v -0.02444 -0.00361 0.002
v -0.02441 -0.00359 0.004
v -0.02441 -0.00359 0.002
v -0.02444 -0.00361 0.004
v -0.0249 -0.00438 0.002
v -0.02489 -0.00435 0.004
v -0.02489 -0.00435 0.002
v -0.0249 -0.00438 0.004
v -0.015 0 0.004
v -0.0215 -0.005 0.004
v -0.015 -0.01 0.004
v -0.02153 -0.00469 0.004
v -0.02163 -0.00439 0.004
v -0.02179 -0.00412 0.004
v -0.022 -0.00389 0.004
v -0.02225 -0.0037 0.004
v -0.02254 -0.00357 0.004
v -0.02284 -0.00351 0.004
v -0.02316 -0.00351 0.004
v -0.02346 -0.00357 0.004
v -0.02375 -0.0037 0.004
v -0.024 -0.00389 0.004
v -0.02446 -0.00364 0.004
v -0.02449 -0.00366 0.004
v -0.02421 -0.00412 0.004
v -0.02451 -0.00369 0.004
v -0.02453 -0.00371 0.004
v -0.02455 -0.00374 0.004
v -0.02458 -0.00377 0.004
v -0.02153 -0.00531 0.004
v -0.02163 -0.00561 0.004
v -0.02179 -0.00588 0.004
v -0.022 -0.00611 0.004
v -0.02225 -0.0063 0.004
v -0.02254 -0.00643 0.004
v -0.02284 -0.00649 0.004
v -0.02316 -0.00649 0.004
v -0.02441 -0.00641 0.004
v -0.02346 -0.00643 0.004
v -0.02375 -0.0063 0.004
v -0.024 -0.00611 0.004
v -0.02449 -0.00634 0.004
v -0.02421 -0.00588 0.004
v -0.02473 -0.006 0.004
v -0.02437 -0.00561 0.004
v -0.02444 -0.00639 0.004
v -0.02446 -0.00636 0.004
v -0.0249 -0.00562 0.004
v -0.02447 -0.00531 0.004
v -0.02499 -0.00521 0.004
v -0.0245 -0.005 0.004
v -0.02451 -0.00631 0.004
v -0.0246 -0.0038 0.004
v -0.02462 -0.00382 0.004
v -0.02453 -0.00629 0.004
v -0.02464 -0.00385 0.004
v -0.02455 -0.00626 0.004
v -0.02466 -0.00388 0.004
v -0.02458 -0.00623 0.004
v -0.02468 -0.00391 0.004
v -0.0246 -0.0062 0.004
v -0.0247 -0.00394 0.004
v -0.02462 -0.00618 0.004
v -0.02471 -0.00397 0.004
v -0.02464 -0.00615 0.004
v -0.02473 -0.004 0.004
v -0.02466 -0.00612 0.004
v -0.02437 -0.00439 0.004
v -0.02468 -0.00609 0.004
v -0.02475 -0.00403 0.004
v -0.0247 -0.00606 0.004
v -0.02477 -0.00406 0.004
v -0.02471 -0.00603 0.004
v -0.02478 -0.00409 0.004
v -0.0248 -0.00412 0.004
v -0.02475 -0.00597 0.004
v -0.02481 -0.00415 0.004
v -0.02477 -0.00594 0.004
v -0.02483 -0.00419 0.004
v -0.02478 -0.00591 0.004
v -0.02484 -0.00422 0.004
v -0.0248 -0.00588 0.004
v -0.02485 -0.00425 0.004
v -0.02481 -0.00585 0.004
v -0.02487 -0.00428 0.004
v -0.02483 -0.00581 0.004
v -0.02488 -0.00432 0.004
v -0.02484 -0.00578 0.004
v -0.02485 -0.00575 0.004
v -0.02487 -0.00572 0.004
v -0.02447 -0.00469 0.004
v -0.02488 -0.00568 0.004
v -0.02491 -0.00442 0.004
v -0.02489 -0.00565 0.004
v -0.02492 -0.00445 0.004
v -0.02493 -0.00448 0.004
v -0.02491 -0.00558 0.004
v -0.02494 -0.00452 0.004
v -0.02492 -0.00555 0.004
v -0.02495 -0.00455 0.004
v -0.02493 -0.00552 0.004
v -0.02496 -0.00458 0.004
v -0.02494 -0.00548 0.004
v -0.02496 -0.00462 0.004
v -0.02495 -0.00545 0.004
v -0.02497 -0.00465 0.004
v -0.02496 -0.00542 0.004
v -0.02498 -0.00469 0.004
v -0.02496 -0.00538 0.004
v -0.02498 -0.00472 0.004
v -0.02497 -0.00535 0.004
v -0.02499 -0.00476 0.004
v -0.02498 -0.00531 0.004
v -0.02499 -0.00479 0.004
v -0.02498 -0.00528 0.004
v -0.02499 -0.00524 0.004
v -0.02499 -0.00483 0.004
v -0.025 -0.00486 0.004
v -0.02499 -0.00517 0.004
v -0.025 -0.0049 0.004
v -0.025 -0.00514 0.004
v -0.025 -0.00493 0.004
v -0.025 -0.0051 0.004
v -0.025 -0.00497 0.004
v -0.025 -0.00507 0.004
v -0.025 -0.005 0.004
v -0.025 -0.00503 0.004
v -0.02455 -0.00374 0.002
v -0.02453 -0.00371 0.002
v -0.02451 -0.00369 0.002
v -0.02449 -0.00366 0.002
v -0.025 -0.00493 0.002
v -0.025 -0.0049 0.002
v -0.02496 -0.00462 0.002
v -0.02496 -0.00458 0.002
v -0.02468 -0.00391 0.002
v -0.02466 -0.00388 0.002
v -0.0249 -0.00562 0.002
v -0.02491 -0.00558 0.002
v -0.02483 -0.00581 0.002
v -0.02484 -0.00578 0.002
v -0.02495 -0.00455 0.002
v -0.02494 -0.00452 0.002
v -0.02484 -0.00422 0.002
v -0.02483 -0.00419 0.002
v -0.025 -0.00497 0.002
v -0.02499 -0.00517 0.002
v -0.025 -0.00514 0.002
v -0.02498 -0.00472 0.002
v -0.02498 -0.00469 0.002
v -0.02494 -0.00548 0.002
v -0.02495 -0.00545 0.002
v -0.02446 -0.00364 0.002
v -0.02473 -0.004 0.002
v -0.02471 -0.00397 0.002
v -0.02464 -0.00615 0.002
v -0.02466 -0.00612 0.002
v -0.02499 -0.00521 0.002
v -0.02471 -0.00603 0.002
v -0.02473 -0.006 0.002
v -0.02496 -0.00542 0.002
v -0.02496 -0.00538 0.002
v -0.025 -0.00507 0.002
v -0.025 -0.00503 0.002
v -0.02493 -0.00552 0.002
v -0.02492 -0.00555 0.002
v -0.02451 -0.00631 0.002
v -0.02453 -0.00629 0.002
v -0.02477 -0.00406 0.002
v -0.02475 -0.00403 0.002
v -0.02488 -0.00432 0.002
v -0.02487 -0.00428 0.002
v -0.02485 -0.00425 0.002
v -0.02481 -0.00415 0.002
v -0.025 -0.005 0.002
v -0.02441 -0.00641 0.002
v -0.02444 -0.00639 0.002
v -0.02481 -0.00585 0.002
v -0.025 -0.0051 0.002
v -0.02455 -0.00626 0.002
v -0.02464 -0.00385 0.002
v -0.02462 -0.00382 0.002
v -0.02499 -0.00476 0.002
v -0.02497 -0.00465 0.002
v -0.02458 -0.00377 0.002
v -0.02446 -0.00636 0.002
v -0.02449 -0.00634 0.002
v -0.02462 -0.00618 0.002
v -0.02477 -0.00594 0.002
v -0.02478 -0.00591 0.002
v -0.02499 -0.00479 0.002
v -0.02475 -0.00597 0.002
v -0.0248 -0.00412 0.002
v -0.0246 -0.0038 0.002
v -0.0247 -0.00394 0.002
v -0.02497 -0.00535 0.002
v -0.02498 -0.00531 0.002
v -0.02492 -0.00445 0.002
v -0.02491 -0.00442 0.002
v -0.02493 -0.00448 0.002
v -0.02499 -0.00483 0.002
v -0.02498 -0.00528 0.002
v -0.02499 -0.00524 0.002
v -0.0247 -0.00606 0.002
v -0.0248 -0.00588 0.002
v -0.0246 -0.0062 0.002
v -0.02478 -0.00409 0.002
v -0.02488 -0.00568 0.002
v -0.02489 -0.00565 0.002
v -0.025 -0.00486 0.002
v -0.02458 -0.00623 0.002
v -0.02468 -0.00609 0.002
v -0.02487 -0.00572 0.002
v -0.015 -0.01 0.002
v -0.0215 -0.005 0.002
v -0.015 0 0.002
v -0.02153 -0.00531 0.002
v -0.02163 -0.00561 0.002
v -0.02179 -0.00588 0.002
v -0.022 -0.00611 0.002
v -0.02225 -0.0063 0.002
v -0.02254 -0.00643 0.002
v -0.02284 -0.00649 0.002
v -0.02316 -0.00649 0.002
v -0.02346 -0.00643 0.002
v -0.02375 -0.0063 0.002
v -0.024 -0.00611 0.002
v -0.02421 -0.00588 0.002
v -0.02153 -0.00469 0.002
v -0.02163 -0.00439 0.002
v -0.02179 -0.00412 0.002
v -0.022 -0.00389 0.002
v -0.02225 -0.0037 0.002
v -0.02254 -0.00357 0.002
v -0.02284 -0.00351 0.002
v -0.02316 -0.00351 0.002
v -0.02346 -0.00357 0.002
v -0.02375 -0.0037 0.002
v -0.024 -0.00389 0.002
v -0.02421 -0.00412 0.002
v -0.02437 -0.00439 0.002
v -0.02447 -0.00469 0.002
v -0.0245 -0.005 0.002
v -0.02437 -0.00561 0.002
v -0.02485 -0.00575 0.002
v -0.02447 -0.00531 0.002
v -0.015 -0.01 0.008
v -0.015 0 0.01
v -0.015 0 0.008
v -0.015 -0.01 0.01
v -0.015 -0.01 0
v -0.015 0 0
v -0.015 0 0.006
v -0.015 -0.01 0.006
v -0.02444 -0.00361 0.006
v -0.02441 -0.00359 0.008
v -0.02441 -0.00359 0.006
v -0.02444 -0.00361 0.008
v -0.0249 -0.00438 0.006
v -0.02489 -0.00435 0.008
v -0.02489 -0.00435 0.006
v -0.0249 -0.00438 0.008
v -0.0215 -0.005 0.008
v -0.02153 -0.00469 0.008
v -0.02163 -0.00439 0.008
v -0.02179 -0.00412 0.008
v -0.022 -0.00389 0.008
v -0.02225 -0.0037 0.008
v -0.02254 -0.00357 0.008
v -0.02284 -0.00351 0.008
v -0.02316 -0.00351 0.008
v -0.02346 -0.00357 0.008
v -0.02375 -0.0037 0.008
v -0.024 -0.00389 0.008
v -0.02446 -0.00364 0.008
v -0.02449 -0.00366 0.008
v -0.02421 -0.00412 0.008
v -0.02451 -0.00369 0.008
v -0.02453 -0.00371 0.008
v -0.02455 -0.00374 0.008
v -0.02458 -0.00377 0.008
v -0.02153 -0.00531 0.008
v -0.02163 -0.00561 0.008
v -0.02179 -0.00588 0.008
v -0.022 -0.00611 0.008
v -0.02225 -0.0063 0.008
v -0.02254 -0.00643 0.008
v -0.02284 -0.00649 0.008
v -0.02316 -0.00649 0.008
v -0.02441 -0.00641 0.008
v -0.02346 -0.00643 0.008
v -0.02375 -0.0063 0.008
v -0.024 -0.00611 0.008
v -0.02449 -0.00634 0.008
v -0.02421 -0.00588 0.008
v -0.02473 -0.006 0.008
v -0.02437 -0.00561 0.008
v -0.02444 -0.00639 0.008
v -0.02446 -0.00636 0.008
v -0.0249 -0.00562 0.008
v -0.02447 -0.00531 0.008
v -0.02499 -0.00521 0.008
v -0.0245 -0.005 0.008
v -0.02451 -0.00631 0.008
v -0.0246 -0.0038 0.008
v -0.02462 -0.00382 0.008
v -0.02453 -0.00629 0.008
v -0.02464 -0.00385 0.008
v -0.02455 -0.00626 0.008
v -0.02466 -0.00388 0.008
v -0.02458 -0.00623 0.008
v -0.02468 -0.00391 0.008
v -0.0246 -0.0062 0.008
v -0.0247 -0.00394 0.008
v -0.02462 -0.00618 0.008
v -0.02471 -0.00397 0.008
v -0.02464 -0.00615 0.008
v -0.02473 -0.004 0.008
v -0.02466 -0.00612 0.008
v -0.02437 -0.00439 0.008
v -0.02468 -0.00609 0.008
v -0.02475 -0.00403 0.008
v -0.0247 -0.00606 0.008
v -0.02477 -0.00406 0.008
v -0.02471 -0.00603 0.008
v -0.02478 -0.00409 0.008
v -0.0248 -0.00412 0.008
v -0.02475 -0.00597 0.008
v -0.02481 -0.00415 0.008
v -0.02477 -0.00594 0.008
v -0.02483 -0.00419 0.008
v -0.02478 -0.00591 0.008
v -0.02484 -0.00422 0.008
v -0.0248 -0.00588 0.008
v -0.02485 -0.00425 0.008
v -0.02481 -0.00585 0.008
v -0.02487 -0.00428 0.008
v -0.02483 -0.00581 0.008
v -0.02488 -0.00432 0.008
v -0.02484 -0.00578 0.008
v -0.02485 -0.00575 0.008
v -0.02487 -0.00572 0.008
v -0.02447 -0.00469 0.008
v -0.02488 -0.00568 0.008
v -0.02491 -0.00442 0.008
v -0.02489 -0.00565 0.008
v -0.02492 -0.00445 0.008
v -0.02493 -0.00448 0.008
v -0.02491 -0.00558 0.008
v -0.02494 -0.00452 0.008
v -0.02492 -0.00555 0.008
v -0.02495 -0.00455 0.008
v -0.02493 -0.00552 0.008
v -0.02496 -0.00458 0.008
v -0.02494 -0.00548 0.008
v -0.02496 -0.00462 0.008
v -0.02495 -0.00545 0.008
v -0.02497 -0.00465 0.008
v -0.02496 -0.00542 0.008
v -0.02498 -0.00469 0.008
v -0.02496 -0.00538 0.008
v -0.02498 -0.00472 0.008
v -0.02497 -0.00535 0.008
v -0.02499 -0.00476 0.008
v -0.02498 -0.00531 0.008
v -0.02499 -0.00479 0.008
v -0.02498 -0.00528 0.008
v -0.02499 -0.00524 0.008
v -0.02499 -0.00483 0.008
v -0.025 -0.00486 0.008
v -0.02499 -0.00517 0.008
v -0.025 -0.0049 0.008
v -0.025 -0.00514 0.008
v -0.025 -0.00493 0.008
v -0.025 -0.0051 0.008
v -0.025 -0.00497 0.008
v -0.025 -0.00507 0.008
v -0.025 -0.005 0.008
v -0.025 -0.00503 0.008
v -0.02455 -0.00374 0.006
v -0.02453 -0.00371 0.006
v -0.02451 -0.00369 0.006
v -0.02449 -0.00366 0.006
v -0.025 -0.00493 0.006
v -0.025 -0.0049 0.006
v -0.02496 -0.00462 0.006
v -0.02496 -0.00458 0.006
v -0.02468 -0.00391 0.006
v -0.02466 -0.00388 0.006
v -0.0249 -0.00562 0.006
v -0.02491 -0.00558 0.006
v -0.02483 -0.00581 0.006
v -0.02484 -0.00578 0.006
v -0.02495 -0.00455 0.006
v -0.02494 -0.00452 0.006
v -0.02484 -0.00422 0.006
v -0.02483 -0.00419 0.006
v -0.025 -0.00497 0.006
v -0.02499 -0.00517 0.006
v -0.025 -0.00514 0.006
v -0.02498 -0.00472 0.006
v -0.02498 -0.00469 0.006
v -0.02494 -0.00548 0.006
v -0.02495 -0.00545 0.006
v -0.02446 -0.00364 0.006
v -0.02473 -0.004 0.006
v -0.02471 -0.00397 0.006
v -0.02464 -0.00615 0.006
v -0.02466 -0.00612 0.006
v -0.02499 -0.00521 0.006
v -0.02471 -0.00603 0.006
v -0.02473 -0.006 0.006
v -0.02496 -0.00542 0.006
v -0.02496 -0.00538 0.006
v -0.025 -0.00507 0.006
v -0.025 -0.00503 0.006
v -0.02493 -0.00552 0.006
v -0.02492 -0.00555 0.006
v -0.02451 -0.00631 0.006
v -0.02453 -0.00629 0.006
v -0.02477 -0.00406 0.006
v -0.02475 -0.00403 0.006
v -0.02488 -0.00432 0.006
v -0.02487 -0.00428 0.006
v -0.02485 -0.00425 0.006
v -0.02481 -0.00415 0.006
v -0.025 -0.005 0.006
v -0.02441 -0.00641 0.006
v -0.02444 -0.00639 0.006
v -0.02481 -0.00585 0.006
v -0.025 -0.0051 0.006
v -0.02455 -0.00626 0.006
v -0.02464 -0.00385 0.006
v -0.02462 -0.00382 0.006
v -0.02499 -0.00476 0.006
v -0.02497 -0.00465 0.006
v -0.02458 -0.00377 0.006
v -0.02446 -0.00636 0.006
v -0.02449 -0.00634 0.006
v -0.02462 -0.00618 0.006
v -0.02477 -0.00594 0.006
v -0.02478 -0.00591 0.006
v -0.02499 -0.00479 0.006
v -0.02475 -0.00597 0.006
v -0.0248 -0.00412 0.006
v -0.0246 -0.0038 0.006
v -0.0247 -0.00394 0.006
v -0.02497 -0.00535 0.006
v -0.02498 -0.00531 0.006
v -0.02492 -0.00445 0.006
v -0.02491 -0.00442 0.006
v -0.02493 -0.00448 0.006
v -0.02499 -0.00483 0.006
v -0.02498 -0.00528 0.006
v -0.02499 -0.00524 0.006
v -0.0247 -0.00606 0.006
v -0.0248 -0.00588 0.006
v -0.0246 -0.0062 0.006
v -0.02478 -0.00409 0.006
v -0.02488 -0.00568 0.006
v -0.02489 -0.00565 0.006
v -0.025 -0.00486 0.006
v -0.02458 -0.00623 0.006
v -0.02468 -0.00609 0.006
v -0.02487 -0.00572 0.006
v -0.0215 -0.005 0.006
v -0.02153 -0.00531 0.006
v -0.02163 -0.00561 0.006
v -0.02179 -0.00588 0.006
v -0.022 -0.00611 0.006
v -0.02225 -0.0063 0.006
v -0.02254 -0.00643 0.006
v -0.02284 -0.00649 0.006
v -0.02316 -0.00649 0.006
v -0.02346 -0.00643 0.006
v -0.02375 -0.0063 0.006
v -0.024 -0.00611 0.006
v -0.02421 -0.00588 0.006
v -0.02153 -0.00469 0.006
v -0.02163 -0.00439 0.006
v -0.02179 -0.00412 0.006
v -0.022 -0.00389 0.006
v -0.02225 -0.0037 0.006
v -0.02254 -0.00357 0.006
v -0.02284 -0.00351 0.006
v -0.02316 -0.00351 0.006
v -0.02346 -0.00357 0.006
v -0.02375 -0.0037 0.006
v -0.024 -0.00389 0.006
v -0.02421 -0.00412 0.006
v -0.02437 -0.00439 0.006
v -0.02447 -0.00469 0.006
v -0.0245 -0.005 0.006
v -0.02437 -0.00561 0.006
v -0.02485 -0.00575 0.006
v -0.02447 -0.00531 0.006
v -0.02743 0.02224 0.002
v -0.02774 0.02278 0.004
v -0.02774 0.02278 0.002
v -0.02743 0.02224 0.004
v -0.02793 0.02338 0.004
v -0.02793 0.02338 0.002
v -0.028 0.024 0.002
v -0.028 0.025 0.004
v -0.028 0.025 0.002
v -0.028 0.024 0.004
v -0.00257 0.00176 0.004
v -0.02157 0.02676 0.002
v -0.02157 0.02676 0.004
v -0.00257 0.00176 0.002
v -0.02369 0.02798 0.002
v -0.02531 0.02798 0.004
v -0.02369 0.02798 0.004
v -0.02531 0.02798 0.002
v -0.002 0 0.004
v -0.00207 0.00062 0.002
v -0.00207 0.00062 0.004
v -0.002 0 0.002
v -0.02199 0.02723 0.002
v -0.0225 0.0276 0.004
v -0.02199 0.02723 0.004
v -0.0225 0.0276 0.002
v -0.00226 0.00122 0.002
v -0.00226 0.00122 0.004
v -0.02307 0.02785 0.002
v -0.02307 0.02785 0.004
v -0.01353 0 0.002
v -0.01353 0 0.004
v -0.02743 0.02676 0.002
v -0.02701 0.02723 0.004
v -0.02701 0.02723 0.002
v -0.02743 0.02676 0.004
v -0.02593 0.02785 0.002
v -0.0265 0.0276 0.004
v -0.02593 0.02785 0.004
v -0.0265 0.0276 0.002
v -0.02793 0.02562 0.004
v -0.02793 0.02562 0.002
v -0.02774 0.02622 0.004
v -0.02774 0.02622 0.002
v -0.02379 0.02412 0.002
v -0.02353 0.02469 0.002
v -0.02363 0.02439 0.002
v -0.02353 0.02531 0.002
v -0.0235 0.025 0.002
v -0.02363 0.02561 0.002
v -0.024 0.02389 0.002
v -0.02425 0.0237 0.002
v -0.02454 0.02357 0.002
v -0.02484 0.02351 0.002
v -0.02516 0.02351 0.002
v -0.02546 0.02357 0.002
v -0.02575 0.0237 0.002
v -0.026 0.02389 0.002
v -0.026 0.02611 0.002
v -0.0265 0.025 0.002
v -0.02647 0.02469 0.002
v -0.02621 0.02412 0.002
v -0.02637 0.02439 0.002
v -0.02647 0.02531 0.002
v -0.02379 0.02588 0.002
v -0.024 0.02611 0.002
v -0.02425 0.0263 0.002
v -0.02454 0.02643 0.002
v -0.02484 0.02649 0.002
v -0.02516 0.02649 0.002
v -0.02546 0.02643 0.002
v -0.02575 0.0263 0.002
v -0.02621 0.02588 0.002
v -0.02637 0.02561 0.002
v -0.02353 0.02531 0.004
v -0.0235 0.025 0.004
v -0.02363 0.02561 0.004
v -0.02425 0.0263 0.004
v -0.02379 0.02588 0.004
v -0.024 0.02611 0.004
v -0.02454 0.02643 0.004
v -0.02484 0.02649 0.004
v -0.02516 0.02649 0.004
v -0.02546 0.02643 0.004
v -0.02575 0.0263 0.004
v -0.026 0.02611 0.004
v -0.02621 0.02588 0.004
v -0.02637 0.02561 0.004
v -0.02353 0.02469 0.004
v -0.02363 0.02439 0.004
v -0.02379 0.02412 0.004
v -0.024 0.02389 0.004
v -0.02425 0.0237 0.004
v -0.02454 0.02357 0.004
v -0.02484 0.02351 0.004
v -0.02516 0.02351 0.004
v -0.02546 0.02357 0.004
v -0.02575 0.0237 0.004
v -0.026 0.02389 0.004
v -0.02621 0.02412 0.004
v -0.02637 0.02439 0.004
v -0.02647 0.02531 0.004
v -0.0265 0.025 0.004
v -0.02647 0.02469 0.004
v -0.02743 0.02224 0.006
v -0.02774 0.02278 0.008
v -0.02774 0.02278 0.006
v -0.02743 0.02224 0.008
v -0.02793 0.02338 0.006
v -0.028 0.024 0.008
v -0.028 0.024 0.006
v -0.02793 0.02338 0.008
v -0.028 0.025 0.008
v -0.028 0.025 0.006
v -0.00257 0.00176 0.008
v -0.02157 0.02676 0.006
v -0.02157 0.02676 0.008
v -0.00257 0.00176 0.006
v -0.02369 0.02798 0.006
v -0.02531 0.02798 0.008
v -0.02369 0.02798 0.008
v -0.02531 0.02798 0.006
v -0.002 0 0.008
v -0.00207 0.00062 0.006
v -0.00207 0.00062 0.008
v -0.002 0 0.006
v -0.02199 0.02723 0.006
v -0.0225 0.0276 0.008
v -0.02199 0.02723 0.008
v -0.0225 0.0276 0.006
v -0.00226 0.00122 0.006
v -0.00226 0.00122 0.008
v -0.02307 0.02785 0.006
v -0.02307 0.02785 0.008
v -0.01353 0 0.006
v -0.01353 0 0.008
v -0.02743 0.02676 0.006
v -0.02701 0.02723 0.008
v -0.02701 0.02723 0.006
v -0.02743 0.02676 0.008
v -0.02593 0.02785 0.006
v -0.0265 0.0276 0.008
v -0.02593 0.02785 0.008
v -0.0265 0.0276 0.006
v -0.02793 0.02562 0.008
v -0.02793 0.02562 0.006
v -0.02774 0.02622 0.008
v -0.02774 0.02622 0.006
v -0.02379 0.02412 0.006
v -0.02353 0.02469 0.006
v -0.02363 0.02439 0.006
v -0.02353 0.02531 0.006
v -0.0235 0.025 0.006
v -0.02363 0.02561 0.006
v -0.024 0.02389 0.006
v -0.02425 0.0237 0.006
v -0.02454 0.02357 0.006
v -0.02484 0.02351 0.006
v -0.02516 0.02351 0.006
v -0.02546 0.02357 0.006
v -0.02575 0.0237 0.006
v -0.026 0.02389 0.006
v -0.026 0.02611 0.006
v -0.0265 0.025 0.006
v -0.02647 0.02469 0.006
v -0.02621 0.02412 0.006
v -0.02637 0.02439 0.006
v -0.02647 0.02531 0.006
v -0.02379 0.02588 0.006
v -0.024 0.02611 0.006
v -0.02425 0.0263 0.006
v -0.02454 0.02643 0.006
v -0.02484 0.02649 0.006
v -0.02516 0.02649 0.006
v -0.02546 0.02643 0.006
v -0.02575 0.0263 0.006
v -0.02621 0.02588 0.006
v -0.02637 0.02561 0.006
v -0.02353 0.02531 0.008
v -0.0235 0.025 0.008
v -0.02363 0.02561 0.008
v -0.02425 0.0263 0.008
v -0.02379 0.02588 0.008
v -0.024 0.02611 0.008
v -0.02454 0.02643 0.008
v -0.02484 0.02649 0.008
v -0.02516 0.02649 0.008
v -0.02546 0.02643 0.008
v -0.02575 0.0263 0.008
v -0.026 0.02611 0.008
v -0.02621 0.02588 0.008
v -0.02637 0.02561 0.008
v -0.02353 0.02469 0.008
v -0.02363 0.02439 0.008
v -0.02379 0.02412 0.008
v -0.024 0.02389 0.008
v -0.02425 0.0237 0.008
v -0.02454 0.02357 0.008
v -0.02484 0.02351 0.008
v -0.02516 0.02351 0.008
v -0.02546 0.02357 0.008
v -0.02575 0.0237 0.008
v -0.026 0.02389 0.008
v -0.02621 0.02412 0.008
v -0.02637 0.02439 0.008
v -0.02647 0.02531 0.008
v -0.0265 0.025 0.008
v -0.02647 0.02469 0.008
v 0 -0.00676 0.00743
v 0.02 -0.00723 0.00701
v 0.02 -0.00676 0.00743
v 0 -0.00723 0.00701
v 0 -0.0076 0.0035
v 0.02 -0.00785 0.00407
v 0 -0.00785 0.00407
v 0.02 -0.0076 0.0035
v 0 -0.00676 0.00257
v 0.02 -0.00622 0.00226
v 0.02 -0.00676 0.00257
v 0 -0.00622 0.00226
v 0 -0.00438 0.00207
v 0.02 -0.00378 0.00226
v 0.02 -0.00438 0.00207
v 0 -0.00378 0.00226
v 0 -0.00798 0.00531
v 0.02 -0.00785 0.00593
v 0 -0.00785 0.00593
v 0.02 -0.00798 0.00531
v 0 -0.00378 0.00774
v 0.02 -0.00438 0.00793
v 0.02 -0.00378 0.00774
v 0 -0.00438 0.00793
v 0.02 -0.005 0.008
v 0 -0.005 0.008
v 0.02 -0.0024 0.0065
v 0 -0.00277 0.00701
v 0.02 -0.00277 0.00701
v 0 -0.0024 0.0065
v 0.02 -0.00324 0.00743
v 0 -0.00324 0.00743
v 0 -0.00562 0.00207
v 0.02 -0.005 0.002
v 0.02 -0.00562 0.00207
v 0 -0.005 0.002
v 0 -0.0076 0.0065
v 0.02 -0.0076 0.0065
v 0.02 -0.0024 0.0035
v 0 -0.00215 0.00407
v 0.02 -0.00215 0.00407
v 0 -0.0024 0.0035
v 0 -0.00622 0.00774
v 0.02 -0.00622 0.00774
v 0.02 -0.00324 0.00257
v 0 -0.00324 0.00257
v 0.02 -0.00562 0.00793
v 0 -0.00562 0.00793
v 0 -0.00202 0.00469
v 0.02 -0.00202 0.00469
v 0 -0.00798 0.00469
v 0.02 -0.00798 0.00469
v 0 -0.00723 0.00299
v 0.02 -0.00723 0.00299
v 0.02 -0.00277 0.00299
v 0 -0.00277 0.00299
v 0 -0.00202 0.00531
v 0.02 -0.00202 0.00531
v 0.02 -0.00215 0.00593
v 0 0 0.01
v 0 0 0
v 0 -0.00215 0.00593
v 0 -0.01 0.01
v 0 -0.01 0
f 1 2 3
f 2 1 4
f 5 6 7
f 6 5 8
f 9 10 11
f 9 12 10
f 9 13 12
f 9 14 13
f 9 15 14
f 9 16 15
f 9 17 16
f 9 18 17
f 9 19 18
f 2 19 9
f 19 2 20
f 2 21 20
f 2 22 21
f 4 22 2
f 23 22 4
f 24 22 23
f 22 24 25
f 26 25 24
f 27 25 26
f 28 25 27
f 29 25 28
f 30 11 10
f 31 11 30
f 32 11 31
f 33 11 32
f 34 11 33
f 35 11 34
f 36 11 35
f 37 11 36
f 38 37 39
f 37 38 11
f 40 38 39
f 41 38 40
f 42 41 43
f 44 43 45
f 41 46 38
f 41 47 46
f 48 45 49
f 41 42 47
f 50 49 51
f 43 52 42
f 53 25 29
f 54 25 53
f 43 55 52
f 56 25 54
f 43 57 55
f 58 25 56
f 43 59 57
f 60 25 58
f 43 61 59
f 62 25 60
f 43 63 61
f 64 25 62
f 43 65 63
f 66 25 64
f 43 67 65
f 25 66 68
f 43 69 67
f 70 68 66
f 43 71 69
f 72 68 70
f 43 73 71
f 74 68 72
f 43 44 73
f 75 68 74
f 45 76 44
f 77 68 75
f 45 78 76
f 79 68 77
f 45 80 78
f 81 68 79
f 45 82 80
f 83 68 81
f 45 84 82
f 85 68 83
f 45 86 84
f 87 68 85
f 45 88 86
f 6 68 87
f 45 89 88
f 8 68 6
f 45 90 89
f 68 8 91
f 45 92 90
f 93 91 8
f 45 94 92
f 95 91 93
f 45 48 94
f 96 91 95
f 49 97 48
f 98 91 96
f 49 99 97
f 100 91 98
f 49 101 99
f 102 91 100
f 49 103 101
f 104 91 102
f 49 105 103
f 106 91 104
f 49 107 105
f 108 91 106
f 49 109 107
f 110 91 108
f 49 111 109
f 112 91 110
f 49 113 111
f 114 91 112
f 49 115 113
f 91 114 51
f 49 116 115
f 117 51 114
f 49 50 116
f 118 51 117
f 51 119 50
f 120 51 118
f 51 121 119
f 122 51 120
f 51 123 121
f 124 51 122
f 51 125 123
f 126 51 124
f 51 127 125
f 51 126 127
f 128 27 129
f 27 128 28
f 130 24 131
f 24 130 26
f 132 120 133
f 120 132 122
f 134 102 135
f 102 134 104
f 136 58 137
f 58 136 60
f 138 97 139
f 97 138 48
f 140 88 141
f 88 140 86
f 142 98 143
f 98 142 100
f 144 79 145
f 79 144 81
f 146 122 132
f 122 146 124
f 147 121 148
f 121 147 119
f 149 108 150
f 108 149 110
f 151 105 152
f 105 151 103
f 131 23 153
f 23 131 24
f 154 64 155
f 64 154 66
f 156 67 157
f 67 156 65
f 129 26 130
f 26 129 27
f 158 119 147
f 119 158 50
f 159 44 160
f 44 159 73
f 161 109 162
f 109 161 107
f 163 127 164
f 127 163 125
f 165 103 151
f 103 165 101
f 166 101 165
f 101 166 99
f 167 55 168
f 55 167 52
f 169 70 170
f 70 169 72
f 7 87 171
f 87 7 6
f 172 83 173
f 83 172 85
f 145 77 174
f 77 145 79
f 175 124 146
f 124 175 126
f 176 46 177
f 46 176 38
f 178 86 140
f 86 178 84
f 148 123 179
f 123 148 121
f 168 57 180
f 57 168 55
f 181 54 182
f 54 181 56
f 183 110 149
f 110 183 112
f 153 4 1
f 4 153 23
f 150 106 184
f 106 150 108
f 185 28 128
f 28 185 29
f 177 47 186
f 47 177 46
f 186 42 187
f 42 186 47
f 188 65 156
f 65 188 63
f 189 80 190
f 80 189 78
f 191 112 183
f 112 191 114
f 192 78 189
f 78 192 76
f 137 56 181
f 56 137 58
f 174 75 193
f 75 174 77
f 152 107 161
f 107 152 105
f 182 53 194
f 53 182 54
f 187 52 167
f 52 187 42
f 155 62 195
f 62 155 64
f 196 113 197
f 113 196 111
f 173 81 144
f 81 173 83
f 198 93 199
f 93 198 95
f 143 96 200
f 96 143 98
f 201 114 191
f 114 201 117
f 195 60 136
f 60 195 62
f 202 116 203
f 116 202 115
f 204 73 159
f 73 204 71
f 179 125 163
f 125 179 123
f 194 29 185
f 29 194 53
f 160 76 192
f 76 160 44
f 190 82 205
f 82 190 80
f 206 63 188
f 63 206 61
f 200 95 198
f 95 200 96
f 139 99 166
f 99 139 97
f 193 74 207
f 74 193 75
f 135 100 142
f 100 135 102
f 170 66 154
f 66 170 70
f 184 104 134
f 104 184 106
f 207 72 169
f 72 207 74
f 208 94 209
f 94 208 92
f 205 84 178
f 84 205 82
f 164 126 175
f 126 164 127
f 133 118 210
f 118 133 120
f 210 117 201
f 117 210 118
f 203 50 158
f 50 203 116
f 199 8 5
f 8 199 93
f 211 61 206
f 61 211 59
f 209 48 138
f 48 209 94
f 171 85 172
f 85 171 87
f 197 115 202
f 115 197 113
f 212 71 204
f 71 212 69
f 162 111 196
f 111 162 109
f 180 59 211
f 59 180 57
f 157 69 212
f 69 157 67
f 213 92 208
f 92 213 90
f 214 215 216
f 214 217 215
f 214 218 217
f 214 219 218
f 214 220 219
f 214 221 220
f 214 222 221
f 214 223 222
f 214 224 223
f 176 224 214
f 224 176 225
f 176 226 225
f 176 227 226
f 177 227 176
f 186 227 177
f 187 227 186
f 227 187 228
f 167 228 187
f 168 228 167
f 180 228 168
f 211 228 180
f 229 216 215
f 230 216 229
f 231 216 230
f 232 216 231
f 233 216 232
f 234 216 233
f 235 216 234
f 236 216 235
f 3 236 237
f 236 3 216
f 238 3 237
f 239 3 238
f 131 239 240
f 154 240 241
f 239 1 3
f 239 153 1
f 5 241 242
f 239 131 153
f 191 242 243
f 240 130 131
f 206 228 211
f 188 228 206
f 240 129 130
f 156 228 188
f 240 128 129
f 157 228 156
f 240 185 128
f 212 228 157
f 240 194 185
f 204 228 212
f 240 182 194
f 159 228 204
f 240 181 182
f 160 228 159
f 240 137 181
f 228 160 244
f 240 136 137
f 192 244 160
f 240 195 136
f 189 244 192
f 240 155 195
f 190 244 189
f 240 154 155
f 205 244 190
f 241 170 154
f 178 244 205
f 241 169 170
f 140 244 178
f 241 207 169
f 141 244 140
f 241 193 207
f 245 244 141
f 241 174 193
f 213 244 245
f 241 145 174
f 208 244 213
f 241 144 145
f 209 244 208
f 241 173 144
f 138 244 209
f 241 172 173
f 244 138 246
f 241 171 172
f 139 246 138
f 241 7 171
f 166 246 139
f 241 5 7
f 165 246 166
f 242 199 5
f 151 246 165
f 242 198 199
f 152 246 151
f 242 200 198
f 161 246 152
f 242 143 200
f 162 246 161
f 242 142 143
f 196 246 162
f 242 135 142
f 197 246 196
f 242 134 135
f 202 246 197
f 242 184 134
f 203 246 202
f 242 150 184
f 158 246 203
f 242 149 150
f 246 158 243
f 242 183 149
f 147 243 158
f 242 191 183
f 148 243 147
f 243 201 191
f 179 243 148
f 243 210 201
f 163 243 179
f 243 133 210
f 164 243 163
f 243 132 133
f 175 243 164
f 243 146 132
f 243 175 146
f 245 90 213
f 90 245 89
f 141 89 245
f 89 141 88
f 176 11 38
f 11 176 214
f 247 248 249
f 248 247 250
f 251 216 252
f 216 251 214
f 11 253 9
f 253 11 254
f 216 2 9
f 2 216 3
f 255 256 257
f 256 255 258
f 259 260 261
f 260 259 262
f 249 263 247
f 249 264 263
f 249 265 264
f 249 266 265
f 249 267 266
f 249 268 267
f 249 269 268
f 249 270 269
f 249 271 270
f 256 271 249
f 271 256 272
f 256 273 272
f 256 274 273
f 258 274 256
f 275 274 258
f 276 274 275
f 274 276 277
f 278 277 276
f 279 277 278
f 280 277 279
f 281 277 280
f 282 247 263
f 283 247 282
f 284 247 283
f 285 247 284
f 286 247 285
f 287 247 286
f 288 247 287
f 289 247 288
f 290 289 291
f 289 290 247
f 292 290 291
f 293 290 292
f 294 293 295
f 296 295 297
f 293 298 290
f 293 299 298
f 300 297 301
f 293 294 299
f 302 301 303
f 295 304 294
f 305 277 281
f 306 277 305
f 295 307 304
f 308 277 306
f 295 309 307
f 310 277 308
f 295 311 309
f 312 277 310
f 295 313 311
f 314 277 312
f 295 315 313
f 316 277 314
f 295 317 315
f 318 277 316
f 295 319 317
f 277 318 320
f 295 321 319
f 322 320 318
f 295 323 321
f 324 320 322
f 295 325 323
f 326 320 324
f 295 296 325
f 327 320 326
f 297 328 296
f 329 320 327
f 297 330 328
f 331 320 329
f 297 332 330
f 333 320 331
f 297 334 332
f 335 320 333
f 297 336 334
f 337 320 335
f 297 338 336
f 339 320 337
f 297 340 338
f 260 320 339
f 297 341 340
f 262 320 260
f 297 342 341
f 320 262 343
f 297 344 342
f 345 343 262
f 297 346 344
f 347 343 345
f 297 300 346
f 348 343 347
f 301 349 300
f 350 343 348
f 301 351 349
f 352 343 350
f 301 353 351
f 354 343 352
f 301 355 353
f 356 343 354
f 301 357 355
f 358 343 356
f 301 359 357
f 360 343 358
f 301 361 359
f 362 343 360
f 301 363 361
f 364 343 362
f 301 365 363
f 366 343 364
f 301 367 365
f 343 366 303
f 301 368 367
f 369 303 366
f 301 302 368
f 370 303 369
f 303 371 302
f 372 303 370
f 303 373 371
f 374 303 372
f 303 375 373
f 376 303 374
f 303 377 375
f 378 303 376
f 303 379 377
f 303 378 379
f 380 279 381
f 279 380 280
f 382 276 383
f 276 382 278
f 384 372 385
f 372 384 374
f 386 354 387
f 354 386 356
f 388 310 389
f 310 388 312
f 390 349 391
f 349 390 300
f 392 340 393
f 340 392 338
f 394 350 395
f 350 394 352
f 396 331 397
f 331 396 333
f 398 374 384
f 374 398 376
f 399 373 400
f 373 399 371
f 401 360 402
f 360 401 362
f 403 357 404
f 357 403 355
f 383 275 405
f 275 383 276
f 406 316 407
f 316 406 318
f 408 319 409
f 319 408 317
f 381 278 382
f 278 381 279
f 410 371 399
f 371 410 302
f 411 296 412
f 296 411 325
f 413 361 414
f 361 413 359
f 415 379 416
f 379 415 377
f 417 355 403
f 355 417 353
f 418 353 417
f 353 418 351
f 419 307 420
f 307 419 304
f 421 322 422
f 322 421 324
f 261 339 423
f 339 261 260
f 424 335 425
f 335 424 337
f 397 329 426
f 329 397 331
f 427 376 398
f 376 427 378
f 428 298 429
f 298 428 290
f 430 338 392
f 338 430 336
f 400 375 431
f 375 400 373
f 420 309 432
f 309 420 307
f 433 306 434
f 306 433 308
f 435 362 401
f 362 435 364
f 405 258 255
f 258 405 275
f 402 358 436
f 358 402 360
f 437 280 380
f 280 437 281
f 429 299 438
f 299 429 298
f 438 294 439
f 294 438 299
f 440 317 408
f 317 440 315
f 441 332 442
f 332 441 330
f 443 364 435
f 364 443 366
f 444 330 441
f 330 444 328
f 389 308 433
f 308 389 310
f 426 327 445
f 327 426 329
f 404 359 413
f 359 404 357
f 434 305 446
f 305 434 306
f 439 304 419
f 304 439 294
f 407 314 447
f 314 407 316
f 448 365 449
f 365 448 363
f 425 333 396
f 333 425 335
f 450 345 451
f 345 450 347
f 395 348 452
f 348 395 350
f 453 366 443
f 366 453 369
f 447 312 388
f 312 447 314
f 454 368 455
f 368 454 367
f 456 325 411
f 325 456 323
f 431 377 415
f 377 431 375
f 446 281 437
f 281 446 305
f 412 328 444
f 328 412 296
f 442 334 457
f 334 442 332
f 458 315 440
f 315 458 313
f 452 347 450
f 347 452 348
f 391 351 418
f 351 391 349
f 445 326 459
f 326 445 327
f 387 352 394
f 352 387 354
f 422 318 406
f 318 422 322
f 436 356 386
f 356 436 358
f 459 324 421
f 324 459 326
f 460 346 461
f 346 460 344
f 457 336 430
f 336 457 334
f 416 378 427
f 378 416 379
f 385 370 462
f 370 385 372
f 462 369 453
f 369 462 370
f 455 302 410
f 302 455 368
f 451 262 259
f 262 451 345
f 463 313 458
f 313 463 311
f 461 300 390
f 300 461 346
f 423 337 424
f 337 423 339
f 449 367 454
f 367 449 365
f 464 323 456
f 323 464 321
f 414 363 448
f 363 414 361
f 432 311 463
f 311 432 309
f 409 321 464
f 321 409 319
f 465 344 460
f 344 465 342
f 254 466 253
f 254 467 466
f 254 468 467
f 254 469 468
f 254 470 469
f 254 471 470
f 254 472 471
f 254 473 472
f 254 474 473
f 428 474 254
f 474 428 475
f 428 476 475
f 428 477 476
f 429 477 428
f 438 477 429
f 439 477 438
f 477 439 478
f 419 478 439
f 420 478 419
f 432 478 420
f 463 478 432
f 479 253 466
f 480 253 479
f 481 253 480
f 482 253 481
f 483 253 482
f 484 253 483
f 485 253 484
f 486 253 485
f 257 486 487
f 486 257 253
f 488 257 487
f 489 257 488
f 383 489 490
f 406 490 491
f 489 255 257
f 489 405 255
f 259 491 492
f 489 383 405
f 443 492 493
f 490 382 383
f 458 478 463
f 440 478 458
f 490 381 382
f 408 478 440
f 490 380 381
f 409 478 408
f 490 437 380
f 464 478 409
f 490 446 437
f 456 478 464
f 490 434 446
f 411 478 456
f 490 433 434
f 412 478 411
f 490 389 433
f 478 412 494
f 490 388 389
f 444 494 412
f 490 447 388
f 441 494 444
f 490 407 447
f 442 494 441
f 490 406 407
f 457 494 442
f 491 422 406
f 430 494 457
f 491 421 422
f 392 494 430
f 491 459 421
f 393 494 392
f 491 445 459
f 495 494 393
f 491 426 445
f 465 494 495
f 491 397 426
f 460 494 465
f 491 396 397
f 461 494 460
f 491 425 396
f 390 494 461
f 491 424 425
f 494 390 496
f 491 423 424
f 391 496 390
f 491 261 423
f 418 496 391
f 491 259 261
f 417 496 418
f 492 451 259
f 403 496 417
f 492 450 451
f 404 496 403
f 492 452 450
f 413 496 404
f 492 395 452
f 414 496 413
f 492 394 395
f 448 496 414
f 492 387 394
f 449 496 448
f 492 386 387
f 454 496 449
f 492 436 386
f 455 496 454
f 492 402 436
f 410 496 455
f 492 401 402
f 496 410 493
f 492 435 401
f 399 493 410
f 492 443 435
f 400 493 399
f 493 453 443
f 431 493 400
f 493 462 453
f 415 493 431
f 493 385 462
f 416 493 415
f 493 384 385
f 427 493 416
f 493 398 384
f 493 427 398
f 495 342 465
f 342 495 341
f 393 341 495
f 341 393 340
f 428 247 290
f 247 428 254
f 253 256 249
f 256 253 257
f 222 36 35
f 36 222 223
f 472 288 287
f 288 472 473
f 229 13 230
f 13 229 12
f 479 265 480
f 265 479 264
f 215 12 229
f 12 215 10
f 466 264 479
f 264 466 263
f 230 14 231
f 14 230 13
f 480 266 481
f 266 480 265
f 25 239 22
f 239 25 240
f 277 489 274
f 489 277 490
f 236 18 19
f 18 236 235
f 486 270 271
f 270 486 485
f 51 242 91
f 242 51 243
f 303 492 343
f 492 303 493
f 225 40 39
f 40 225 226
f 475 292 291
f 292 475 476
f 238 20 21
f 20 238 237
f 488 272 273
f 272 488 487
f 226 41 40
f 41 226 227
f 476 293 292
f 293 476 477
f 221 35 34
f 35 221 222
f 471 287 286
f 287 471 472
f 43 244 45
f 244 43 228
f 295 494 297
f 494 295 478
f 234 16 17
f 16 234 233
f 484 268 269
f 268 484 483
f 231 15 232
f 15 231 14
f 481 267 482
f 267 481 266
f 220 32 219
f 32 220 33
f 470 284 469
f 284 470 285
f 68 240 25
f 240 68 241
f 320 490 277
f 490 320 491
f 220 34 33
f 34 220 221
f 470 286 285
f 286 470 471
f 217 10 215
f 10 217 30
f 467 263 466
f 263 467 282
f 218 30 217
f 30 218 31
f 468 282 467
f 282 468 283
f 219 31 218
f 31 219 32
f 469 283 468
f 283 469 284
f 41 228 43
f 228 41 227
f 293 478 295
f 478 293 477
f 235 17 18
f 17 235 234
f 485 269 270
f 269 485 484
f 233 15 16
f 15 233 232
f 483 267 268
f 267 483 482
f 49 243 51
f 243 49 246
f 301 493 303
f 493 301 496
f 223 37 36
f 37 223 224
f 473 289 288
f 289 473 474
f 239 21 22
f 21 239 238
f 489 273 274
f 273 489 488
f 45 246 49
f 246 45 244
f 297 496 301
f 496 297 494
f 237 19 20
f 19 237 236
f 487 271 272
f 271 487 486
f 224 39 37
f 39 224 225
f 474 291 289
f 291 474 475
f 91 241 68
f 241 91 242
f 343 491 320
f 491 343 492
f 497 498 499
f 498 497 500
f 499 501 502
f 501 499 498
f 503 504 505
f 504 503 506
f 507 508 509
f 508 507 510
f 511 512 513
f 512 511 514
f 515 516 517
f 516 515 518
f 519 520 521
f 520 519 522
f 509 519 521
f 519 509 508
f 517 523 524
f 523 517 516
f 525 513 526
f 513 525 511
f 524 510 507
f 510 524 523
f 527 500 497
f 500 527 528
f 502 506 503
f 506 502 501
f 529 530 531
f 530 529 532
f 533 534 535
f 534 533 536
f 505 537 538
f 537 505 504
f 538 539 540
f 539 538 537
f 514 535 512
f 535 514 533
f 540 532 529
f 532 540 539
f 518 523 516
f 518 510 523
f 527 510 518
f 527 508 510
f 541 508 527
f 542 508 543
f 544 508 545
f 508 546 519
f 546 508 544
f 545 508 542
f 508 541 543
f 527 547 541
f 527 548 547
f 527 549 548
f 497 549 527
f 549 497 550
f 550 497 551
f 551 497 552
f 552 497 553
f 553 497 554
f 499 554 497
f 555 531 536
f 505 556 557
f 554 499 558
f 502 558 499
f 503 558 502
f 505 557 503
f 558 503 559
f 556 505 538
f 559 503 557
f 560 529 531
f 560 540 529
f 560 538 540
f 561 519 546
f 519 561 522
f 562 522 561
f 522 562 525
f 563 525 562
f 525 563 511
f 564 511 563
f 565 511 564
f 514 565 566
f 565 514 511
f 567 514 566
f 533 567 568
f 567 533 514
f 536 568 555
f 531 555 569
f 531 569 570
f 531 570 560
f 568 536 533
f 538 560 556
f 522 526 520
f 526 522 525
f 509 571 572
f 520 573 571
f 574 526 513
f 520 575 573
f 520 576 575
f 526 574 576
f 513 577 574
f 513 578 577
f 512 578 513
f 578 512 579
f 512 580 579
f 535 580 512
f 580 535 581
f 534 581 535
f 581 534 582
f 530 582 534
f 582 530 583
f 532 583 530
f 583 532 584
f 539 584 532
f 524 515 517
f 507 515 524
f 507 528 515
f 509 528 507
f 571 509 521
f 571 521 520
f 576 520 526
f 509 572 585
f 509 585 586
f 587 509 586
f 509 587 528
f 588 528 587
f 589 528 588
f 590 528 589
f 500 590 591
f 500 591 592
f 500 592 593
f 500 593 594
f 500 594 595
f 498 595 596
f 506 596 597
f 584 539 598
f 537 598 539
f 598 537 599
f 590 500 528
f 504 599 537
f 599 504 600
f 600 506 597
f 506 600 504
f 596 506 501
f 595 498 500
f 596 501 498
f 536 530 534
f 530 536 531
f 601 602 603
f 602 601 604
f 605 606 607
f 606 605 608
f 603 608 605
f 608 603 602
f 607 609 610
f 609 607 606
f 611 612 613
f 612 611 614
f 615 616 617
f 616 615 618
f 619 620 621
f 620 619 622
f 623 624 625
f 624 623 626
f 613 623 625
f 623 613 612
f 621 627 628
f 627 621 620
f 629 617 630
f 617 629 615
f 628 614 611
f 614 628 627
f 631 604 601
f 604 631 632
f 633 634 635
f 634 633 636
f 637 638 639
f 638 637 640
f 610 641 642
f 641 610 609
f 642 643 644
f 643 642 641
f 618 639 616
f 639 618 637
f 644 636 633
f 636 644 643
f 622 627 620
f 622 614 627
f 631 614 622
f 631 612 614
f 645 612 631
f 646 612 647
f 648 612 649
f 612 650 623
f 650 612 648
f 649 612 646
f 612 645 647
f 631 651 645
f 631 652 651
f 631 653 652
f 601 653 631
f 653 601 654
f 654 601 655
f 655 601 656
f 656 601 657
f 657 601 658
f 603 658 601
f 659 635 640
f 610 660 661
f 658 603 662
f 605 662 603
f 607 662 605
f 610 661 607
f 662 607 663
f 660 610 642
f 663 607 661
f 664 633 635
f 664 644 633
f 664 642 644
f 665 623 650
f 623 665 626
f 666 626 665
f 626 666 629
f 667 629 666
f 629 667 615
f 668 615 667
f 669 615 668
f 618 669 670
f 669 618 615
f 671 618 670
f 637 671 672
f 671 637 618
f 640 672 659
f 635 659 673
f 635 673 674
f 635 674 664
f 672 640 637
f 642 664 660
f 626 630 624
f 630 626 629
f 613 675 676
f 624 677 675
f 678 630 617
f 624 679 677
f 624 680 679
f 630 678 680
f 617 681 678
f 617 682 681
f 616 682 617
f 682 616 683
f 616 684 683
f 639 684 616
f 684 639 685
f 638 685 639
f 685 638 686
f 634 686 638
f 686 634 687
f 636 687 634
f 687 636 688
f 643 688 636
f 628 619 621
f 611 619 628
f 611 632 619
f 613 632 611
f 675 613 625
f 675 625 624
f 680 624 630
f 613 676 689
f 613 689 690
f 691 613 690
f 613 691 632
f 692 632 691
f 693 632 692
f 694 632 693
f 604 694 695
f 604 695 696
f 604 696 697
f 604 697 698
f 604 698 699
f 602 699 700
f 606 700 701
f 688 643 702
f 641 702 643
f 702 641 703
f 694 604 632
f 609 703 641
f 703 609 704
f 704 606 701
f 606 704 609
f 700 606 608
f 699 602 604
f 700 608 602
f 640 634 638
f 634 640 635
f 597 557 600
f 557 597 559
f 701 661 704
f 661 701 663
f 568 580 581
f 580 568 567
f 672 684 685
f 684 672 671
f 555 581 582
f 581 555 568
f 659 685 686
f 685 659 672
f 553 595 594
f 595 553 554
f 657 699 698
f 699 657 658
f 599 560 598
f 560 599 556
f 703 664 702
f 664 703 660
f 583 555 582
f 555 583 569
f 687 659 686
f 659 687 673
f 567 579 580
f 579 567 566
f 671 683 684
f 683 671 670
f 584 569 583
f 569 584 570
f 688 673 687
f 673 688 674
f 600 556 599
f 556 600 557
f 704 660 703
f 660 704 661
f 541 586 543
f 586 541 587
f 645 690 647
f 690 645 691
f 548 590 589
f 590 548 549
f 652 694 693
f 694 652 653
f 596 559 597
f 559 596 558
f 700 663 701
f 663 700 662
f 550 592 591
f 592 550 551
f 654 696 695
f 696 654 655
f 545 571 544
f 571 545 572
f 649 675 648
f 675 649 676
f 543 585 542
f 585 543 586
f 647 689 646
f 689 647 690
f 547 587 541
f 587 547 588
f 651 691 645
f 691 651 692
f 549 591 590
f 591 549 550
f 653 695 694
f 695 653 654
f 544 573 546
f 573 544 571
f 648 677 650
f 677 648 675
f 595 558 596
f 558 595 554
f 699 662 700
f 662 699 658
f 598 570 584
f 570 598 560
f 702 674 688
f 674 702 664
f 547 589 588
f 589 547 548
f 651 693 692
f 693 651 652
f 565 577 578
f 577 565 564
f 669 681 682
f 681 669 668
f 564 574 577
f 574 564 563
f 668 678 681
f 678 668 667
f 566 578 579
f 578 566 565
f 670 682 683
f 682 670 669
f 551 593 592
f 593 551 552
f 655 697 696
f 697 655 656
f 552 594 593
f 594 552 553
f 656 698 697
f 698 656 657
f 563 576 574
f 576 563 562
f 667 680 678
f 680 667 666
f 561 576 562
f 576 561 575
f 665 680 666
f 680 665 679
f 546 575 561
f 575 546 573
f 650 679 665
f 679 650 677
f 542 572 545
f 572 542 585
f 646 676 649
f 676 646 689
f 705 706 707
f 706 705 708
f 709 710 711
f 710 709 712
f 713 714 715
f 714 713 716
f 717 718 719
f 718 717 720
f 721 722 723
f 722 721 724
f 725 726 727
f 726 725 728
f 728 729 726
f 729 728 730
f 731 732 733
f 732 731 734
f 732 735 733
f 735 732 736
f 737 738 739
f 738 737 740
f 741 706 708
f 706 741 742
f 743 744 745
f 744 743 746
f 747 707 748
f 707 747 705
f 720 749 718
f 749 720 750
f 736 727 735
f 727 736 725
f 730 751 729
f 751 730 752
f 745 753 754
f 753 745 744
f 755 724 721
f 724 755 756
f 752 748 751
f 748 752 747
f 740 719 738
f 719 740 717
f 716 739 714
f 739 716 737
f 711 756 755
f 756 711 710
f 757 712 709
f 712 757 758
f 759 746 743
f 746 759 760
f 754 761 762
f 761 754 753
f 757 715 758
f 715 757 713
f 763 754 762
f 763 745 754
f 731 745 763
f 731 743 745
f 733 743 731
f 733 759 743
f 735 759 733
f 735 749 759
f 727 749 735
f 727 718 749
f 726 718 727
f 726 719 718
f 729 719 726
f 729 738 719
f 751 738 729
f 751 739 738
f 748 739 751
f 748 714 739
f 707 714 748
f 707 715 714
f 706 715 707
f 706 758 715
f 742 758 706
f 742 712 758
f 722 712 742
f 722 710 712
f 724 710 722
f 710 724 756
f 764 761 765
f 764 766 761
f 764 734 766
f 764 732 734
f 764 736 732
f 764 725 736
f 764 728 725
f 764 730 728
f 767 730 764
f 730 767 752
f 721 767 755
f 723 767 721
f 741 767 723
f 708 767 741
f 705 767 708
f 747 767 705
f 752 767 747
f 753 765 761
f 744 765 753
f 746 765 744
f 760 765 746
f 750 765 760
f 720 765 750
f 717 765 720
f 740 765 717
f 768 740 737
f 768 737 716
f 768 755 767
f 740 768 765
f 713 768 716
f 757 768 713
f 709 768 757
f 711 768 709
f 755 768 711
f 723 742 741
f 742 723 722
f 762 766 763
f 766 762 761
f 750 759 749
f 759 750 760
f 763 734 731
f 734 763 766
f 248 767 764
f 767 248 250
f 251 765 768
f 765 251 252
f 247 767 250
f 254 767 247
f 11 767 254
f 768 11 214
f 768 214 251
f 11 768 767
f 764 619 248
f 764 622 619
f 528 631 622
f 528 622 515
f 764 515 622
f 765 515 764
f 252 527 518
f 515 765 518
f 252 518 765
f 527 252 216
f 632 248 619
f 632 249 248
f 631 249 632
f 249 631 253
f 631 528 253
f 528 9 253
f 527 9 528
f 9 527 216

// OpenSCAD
scale([0.001, 0.001, 0.001])
rotate([0, 0, 180]) // Is unpleasant to do in mujoco.
union() {
    translate([-20, 5, 5])
    rotate([0, 90, 0])
    cylinder(20, 3, 3, $fn=30);
    
    cube([15, 10, 10]);
    
    translate([25, 10, 0])
    rotate([0, 0, 180])
    get_joint();
    
    steering_arm();
}

module steering_arm() {
    difference() {
        union() {
            translate([0, 0, 3])
            get_connector();
            
            translate([0, 0, 7])
            get_connector();
        }
        translate([25, -25, 0])
        cylinder(15, 1.5, 1.5, $fn=30);
    } 
}

module get_connector() {
    minkowski() {
        rotate([180, 0, 0])
    linear_extrude(height = 1, center = false, convexity = 10)
        polygon([
            [5, 0],
            [24, 25],
            [25, 25],
            [25, 24],
            [10, 0]
        ]);
        linear_extrude(height = 1, center = false, convexity = 10)
        circle(3, $fn=30);
    }
     
}

module get_joint() {
    difference() {
        union() {
            translate([0, 0, 2])
            get_cover();
        
            translate([0, 0, 6])
            get_cover();
        } 
        translate([2, 5, 0])
        cylinder(10, 1.5, 1.5, $fn=30);
    }
    
}

module get_cover() {
    union() {
        radius = 2;
        angles = [45, 135];
        points = [
            for(a = [angles[0]:1:angles[1]]) [radius * cos(a),      radius * sin(a)]
        ];
        translate([2, 5, 0])
        rotate([0, 0, 90])
        linear_extrude(height = 2, center = false, convexity = 10)
        polygon(concat([[0, 0]], points));
            
        translate([2, 5, 0])
        rotate([0, 0, 90])
        linear_extrude(height = 2, center = false, convexity = 10)
        polygon([
            [5, -8], 
            [radius * cos(angles[0]), radius * sin(angles[0])], 
            [radius * cos(angles[1]), radius * sin(angles[1])],
            [-5, -8]
        ]); 
    }
}
